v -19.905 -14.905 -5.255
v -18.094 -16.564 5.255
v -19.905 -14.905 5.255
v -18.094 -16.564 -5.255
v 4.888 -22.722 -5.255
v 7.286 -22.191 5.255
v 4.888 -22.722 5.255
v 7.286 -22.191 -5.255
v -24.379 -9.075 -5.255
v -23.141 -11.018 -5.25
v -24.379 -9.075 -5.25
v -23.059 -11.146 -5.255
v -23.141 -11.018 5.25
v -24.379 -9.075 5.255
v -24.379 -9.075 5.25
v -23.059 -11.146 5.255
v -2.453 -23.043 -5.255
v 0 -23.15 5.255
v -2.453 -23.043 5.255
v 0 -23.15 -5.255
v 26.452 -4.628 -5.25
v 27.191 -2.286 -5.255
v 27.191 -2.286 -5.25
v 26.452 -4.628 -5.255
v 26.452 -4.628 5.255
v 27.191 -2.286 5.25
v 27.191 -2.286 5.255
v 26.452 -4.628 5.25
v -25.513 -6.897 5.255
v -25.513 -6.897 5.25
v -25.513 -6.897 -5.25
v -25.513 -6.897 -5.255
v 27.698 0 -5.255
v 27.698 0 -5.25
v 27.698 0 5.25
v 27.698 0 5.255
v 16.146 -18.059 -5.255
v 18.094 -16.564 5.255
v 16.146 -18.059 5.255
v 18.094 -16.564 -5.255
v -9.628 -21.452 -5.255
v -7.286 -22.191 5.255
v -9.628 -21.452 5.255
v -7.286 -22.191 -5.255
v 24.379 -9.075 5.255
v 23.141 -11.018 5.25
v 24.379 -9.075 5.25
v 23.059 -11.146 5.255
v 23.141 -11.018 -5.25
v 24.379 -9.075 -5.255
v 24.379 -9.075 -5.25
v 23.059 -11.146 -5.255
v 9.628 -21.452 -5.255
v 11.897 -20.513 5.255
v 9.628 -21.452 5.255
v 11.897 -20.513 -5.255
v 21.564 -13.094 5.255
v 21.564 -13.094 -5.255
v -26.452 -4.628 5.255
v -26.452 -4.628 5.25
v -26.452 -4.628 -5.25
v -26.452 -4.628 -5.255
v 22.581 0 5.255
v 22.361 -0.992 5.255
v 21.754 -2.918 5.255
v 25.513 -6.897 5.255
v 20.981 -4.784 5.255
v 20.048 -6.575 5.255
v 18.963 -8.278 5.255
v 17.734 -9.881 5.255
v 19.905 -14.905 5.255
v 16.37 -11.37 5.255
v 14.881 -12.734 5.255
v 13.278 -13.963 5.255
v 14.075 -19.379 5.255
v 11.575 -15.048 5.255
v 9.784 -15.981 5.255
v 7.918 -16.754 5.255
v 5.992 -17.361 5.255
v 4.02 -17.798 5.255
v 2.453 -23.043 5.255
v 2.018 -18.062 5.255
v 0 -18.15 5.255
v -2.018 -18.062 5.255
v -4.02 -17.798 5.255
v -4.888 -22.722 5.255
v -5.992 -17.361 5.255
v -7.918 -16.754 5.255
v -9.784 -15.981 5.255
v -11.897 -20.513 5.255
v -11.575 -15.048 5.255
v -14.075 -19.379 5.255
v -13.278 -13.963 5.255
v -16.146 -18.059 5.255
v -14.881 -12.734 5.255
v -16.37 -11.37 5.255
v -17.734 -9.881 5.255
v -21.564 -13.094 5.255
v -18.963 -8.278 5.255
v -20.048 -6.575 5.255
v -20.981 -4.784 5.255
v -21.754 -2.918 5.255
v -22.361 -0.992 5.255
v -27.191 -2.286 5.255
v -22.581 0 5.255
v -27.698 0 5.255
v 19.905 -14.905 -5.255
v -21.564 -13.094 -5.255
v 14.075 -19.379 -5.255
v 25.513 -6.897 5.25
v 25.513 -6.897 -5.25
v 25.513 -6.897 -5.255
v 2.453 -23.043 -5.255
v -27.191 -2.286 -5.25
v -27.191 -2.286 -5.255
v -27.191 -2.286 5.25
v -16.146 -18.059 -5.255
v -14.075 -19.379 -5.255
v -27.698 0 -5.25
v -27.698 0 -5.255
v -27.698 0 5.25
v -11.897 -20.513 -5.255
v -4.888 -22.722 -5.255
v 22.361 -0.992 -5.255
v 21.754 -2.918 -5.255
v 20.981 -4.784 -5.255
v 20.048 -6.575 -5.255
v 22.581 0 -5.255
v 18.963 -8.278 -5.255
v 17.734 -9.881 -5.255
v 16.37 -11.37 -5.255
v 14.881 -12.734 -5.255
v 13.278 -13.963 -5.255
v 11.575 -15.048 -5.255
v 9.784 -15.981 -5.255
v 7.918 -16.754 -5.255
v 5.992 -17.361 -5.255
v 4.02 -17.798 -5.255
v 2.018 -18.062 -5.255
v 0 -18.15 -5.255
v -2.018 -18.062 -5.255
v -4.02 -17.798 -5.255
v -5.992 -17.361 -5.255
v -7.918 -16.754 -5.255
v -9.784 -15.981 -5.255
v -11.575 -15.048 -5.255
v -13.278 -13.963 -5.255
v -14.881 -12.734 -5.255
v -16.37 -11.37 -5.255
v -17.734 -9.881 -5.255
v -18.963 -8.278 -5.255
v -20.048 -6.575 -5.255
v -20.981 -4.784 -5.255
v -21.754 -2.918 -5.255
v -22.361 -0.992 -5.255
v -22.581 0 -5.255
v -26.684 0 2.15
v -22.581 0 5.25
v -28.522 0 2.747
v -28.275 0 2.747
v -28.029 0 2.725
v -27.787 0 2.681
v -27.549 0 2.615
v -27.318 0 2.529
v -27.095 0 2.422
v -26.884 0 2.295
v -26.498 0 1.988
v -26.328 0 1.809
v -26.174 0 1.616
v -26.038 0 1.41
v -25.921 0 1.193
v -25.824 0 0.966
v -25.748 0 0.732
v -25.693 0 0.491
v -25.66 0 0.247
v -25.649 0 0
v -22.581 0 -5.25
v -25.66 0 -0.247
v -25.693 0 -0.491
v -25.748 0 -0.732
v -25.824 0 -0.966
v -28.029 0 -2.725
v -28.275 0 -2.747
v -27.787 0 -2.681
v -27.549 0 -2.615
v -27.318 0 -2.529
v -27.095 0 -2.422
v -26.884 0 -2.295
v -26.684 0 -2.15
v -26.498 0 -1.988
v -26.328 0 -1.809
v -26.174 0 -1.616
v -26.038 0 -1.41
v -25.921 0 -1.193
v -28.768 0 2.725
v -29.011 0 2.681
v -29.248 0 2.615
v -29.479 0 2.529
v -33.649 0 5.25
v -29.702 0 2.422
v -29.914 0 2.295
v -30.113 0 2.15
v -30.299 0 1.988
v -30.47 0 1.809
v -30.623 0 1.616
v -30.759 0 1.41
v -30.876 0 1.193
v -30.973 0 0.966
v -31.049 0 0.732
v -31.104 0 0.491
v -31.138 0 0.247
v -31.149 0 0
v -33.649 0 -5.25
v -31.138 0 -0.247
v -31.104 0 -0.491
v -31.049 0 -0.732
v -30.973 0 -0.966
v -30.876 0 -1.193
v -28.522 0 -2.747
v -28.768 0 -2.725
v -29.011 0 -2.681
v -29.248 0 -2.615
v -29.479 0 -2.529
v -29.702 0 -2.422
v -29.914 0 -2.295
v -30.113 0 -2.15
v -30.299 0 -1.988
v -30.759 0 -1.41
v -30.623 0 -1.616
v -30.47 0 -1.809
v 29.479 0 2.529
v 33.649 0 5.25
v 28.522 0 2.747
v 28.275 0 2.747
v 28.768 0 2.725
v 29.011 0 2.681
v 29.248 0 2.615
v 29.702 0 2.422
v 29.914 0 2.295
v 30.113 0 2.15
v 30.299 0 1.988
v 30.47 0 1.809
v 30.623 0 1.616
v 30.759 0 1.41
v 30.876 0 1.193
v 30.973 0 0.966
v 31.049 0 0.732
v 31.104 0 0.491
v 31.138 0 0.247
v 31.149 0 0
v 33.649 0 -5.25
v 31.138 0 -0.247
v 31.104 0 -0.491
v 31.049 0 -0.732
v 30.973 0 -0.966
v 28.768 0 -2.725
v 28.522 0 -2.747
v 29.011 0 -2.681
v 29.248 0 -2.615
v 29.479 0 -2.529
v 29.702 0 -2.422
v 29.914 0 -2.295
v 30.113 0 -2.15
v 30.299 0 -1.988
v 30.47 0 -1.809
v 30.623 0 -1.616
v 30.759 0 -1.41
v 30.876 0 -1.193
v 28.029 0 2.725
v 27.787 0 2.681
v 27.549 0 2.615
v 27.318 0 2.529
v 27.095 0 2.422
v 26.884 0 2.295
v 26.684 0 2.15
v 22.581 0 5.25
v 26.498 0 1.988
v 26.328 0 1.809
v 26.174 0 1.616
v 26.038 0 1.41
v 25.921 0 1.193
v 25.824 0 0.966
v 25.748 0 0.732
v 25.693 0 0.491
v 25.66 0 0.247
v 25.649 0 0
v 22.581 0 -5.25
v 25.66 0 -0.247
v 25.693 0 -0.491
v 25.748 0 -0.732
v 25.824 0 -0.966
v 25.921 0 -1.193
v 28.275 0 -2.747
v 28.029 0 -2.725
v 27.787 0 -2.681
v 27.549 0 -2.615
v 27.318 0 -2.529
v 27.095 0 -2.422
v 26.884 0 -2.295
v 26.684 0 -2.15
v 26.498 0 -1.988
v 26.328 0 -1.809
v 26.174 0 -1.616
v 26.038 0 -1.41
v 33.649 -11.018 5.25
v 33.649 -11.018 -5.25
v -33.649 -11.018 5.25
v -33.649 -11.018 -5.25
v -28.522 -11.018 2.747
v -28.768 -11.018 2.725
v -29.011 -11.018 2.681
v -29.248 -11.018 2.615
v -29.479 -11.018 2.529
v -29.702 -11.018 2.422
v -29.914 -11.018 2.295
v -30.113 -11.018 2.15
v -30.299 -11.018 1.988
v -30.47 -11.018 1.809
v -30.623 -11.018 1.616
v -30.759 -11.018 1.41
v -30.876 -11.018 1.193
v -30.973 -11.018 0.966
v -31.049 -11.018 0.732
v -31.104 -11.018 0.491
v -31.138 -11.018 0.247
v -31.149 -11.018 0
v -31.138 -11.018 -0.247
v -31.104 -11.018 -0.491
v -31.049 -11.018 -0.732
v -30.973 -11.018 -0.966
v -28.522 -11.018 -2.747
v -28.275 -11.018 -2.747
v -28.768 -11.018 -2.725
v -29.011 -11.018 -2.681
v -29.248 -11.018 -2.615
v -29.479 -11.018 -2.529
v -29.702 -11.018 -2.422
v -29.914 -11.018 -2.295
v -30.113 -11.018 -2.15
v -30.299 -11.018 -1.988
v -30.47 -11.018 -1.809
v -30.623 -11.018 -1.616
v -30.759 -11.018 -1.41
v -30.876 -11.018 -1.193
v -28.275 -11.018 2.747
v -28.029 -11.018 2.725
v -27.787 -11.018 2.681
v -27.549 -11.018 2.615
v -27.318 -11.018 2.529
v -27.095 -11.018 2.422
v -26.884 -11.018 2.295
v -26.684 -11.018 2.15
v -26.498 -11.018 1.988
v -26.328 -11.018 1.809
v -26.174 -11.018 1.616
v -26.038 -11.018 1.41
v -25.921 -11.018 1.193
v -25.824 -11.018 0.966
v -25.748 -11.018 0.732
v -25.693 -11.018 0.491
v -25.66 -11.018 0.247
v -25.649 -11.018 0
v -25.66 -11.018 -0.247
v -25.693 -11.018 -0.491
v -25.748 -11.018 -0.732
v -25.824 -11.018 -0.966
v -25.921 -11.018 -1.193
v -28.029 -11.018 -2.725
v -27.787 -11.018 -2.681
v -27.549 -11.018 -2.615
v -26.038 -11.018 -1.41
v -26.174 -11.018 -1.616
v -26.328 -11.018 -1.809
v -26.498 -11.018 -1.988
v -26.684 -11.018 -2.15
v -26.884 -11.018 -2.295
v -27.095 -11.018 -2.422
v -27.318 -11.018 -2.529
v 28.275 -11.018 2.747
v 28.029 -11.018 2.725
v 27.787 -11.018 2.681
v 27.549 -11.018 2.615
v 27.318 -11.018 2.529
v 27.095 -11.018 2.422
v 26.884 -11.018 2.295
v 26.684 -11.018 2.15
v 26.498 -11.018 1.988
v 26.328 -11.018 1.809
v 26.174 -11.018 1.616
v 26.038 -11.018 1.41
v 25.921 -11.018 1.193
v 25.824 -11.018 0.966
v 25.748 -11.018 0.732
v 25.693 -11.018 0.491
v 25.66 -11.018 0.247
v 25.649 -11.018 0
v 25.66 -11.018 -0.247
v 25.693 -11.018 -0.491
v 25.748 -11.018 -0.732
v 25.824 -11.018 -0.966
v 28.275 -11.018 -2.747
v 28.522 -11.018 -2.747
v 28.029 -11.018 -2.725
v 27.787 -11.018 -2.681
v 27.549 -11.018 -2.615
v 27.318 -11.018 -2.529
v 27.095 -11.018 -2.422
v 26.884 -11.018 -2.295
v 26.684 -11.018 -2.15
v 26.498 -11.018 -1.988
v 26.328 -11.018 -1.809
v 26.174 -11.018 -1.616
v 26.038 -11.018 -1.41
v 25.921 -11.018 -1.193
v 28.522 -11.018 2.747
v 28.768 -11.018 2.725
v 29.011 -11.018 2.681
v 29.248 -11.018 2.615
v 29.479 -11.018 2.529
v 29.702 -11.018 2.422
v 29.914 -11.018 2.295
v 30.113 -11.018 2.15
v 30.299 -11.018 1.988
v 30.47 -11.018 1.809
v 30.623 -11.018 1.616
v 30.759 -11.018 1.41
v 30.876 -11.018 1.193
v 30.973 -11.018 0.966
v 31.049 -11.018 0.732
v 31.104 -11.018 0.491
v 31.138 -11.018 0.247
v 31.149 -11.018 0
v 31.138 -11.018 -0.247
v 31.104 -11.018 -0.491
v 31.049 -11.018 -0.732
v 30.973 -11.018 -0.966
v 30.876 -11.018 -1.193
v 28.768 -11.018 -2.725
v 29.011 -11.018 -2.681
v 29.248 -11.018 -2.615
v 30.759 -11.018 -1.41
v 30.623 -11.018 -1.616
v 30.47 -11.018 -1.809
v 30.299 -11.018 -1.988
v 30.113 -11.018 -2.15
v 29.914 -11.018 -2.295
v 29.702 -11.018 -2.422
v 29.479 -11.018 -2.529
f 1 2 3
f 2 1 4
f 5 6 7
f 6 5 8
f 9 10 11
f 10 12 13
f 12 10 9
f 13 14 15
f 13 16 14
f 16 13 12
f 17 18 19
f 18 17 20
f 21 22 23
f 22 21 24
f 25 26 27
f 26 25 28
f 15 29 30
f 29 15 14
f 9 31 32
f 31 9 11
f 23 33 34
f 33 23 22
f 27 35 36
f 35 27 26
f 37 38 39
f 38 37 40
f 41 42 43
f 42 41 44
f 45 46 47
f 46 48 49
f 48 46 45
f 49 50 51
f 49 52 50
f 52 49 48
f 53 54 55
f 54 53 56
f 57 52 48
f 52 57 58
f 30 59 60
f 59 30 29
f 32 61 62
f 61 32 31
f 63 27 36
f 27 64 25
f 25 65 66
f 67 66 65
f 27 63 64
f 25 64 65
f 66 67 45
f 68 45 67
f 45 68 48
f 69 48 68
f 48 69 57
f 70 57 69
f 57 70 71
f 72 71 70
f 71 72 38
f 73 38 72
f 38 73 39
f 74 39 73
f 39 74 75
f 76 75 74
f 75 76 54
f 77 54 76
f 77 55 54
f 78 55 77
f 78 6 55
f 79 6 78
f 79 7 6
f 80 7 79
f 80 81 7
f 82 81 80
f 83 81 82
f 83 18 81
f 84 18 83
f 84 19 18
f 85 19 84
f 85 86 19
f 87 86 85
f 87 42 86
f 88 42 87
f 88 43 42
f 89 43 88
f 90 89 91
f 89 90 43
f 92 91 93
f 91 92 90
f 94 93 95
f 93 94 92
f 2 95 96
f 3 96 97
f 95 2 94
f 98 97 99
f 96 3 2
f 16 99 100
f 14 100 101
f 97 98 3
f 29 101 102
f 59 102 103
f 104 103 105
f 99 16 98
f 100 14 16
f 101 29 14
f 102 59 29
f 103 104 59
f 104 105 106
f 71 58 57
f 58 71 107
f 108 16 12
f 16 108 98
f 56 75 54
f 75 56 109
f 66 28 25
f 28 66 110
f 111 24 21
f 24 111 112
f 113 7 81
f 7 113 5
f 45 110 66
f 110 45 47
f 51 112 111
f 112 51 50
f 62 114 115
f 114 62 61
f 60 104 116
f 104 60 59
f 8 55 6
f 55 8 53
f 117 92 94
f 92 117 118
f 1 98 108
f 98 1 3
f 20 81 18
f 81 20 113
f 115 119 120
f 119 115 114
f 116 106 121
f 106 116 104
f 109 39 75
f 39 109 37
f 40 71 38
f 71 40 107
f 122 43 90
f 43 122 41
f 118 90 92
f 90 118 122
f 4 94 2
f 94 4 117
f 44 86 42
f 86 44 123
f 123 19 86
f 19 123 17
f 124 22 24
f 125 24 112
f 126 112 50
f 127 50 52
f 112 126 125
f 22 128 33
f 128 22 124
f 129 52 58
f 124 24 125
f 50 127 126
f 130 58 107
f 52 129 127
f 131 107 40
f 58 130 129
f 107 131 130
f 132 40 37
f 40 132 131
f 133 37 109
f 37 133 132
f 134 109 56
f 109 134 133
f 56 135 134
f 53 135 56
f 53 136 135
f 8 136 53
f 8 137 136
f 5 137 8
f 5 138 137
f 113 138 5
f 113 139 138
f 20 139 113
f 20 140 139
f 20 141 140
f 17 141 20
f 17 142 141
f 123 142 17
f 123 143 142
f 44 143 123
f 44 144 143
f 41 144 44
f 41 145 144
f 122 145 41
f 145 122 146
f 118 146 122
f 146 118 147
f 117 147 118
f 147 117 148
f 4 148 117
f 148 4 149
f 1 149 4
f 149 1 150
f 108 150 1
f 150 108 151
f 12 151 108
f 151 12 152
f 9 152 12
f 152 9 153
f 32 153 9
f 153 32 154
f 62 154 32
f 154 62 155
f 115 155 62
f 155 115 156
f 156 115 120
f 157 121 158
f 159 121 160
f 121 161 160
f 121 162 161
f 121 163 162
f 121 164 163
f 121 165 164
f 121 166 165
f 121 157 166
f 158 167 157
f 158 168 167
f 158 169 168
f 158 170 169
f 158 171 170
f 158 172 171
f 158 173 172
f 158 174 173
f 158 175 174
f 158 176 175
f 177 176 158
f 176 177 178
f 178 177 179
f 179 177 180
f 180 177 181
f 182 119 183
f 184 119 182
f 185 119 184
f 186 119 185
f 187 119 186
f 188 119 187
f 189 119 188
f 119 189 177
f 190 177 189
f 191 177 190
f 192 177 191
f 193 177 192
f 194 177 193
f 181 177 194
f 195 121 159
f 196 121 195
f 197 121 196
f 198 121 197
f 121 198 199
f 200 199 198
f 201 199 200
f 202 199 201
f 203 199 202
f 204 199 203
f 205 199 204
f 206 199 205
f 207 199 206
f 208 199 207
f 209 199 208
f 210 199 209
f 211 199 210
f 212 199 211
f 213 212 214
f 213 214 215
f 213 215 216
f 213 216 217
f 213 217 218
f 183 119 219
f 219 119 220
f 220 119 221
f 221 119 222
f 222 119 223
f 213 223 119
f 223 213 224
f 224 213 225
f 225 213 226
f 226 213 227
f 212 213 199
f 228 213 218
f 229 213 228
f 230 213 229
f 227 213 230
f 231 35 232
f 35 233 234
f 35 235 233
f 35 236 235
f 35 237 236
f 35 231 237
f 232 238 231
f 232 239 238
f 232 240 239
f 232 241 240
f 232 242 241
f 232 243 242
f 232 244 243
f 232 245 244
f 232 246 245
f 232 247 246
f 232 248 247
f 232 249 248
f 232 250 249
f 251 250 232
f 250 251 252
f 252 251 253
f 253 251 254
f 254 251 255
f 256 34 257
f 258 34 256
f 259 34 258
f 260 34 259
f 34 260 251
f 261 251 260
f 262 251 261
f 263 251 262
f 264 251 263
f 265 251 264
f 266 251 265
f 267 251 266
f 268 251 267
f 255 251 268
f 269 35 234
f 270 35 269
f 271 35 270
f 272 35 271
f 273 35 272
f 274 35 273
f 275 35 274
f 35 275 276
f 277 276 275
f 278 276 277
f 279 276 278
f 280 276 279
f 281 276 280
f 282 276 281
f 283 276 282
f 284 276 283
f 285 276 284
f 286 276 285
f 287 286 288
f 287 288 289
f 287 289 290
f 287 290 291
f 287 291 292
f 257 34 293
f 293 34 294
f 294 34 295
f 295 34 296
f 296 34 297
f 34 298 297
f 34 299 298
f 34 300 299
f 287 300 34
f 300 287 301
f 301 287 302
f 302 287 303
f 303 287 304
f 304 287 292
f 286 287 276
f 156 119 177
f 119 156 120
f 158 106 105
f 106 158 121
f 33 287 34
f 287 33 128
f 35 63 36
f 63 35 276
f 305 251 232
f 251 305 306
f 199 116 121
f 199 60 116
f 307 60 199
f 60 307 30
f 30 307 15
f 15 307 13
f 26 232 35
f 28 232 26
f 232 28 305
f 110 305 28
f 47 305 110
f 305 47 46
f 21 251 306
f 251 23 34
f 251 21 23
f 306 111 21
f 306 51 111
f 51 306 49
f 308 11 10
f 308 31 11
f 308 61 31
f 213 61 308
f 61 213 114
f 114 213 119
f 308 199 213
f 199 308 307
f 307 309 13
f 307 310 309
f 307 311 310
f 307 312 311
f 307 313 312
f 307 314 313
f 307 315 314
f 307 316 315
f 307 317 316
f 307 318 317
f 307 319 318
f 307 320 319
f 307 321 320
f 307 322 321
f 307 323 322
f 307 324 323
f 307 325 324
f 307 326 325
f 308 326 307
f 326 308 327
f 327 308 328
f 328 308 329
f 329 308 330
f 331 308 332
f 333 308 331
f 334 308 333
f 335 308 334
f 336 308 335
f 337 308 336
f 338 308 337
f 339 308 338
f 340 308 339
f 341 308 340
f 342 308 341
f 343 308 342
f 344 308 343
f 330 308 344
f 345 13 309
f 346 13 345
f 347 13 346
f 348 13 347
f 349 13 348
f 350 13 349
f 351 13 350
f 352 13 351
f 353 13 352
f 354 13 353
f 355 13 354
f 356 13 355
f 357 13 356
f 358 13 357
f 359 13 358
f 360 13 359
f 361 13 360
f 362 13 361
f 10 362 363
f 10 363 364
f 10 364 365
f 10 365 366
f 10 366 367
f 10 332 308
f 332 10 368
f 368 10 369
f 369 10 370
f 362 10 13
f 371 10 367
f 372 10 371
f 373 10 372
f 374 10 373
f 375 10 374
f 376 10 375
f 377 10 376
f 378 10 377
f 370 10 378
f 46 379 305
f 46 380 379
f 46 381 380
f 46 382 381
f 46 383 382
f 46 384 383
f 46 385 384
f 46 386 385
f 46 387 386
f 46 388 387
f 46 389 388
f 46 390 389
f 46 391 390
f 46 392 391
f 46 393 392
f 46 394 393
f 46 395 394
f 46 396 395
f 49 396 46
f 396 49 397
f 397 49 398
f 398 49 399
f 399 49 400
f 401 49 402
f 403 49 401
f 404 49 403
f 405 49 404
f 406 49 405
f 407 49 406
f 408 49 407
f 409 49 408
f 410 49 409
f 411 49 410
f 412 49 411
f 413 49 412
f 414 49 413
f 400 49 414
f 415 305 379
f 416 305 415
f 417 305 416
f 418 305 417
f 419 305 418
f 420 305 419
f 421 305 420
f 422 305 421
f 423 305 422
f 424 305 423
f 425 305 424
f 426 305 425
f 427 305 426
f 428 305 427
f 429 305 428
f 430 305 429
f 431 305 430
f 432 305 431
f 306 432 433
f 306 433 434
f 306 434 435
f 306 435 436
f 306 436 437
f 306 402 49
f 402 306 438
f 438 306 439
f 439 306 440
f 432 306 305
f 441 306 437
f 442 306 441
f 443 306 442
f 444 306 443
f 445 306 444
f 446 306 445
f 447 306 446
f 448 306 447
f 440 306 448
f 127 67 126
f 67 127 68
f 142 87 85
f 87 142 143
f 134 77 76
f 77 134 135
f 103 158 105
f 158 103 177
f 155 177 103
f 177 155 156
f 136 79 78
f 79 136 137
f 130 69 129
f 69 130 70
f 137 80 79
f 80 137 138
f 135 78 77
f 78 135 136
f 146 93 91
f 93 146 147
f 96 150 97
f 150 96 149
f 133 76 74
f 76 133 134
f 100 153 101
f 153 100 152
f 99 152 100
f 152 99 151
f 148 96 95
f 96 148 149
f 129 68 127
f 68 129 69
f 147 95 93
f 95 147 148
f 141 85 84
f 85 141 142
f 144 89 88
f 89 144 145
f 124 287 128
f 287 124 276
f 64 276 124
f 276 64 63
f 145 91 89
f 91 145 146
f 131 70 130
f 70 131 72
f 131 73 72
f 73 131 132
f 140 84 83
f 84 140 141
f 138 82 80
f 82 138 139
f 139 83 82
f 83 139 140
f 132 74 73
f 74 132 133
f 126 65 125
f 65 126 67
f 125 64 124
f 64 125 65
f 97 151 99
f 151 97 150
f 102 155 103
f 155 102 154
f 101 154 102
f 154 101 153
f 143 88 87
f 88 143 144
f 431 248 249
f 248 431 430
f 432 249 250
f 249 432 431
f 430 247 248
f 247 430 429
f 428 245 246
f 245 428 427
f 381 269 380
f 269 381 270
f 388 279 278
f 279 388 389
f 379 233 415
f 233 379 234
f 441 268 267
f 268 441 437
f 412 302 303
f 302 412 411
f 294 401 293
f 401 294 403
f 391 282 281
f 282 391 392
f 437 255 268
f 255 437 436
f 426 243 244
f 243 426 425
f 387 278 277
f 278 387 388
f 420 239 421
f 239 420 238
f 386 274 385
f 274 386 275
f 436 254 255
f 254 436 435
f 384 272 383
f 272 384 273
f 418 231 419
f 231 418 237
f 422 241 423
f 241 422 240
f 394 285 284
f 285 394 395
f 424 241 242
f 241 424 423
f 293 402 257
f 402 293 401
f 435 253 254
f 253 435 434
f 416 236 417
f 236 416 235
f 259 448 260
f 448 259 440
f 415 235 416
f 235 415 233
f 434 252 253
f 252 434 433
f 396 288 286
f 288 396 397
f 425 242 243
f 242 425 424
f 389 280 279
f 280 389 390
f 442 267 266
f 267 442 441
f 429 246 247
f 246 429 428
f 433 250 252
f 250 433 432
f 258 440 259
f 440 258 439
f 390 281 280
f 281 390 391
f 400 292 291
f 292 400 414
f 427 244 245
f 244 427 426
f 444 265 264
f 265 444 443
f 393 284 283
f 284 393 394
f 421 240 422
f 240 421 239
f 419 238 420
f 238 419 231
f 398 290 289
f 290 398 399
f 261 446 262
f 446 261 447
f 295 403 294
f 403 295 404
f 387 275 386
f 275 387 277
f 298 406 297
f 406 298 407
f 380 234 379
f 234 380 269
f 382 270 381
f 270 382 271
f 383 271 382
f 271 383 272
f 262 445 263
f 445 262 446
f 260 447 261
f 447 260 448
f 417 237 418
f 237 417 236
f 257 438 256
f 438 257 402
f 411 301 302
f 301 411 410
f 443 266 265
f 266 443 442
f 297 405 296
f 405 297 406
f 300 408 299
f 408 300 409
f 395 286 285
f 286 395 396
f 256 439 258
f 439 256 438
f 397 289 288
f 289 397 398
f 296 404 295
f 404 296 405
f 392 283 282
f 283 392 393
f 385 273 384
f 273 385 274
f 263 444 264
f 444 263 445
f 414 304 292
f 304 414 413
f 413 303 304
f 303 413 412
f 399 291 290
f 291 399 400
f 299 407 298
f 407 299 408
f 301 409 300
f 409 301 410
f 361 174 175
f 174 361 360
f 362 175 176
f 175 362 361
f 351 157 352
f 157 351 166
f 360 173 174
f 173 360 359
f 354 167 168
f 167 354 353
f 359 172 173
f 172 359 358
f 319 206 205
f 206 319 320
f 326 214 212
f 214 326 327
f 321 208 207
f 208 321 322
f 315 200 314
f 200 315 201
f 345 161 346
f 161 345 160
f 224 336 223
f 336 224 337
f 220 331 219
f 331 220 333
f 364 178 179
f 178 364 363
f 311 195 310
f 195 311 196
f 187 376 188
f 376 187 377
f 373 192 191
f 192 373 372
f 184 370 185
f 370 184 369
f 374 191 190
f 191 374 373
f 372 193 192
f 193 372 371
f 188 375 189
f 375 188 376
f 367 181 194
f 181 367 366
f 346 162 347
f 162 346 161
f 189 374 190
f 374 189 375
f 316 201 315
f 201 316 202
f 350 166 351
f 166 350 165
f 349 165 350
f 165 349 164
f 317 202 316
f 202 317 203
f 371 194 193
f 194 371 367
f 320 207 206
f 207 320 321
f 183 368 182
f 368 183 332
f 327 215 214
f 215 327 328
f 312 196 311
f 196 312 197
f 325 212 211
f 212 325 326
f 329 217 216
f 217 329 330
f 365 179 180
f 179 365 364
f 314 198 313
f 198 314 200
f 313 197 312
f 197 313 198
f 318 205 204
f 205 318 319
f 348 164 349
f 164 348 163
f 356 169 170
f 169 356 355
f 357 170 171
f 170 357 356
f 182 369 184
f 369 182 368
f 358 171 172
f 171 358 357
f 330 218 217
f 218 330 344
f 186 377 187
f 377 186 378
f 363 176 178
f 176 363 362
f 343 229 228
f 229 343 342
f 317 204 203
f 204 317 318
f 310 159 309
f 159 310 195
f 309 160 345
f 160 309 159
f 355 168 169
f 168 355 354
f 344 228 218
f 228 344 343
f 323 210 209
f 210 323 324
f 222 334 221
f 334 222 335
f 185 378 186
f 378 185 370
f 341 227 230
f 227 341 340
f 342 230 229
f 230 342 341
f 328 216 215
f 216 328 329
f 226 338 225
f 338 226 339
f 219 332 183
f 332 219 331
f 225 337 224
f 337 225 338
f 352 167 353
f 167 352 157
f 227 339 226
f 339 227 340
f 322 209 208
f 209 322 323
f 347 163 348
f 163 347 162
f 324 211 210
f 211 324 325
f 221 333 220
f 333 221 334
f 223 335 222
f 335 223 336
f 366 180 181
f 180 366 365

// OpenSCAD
// "Resolution" of arcs
$fs=0.25;
$fa=5;

module rearMountingBracket(
    poleDiameter = 46,
    poleFittingOffset = 5,
    polePadding = 5,
    mountScrewHoleDiameter = 5.5,
    mountScrewHolePadding = 2.5,
    minHoleBlockDepth = 5,
    screwHoleOffset = 1.5,
) {
    innerRadius = poleDiameter/2;
    outerRadius = innerRadius + polePadding;
    outerDiameter = outerRadius*2;
    
    innerArcPositionX = innerRadius - sqrt(innerRadius^2 - poleFittingOffset^2);
    outerArcPositionY = sqrt(outerRadius^2 - (sqrt(innerRadius^2 - poleFittingOffset^2) + screwHoleOffset)^2);

    holeBlockDepth = max(minHoleBlockDepth, outerArcPositionY - poleFittingOffset);
    
    difference() {
        union() {
            // Hole Block
            translate([
                0,
                -holeBlockDepth/2,
                0
            ])
                cube([
                    poleDiameter + mountScrewHoleDiameter*2 + mountScrewHolePadding*4 - innerArcPositionX*2 + screwHoleOffset*2, 
                    holeBlockDepth, 
                    mountScrewHoleDiameter + mountScrewHolePadding*2
                ], center=true);
            
            // Main Body
            difference() {
                translate([
                    0, 
                    poleFittingOffset,
                    0
                ])
                    cylinder(
                        h=mountScrewHoleDiameter + mountScrewHolePadding*2 + 0.01, 
                        r=outerRadius, 
                        center=true
                    );
                translate([0, (innerRadius+poleFittingOffset*2+polePadding)/2, 0])
                    cube([
                        outerDiameter, 
                        innerRadius+poleFittingOffset*2+polePadding, 
                        mountScrewHoleDiameter + mountScrewHolePadding*2+0.1
                    ], center=true);
            }
        }
        // Inner Cutout
        translate([0, poleFittingOffset, 0])
            cylinder(h=mountScrewHoleDiameter + mountScrewHolePadding*2 + 0.1, r=innerRadius, center=true);
        
        screwHolePosition = innerRadius + mountScrewHoleDiameter/2 + mountScrewHolePadding - innerArcPositionX + screwHoleOffset;
        // screw Hole L
        translate([screwHolePosition, -holeBlockDepth/2, 0])
            rotate([90, 0, 0])
                cylinder(h=holeBlockDepth + 0.01, r=mountScrewHoleDiameter/2, center=true);
        // screw Hole R
        translate([-screwHolePosition, -holeBlockDepth/2, 0])
            rotate([90, 0, 0])
                cylinder(h=holeBlockDepth + 0.01, r=mountScrewHoleDiameter/2, center=true);
        
    }
}

rearMountingBracket(46.3, screwHoleOffset = 0.545);
